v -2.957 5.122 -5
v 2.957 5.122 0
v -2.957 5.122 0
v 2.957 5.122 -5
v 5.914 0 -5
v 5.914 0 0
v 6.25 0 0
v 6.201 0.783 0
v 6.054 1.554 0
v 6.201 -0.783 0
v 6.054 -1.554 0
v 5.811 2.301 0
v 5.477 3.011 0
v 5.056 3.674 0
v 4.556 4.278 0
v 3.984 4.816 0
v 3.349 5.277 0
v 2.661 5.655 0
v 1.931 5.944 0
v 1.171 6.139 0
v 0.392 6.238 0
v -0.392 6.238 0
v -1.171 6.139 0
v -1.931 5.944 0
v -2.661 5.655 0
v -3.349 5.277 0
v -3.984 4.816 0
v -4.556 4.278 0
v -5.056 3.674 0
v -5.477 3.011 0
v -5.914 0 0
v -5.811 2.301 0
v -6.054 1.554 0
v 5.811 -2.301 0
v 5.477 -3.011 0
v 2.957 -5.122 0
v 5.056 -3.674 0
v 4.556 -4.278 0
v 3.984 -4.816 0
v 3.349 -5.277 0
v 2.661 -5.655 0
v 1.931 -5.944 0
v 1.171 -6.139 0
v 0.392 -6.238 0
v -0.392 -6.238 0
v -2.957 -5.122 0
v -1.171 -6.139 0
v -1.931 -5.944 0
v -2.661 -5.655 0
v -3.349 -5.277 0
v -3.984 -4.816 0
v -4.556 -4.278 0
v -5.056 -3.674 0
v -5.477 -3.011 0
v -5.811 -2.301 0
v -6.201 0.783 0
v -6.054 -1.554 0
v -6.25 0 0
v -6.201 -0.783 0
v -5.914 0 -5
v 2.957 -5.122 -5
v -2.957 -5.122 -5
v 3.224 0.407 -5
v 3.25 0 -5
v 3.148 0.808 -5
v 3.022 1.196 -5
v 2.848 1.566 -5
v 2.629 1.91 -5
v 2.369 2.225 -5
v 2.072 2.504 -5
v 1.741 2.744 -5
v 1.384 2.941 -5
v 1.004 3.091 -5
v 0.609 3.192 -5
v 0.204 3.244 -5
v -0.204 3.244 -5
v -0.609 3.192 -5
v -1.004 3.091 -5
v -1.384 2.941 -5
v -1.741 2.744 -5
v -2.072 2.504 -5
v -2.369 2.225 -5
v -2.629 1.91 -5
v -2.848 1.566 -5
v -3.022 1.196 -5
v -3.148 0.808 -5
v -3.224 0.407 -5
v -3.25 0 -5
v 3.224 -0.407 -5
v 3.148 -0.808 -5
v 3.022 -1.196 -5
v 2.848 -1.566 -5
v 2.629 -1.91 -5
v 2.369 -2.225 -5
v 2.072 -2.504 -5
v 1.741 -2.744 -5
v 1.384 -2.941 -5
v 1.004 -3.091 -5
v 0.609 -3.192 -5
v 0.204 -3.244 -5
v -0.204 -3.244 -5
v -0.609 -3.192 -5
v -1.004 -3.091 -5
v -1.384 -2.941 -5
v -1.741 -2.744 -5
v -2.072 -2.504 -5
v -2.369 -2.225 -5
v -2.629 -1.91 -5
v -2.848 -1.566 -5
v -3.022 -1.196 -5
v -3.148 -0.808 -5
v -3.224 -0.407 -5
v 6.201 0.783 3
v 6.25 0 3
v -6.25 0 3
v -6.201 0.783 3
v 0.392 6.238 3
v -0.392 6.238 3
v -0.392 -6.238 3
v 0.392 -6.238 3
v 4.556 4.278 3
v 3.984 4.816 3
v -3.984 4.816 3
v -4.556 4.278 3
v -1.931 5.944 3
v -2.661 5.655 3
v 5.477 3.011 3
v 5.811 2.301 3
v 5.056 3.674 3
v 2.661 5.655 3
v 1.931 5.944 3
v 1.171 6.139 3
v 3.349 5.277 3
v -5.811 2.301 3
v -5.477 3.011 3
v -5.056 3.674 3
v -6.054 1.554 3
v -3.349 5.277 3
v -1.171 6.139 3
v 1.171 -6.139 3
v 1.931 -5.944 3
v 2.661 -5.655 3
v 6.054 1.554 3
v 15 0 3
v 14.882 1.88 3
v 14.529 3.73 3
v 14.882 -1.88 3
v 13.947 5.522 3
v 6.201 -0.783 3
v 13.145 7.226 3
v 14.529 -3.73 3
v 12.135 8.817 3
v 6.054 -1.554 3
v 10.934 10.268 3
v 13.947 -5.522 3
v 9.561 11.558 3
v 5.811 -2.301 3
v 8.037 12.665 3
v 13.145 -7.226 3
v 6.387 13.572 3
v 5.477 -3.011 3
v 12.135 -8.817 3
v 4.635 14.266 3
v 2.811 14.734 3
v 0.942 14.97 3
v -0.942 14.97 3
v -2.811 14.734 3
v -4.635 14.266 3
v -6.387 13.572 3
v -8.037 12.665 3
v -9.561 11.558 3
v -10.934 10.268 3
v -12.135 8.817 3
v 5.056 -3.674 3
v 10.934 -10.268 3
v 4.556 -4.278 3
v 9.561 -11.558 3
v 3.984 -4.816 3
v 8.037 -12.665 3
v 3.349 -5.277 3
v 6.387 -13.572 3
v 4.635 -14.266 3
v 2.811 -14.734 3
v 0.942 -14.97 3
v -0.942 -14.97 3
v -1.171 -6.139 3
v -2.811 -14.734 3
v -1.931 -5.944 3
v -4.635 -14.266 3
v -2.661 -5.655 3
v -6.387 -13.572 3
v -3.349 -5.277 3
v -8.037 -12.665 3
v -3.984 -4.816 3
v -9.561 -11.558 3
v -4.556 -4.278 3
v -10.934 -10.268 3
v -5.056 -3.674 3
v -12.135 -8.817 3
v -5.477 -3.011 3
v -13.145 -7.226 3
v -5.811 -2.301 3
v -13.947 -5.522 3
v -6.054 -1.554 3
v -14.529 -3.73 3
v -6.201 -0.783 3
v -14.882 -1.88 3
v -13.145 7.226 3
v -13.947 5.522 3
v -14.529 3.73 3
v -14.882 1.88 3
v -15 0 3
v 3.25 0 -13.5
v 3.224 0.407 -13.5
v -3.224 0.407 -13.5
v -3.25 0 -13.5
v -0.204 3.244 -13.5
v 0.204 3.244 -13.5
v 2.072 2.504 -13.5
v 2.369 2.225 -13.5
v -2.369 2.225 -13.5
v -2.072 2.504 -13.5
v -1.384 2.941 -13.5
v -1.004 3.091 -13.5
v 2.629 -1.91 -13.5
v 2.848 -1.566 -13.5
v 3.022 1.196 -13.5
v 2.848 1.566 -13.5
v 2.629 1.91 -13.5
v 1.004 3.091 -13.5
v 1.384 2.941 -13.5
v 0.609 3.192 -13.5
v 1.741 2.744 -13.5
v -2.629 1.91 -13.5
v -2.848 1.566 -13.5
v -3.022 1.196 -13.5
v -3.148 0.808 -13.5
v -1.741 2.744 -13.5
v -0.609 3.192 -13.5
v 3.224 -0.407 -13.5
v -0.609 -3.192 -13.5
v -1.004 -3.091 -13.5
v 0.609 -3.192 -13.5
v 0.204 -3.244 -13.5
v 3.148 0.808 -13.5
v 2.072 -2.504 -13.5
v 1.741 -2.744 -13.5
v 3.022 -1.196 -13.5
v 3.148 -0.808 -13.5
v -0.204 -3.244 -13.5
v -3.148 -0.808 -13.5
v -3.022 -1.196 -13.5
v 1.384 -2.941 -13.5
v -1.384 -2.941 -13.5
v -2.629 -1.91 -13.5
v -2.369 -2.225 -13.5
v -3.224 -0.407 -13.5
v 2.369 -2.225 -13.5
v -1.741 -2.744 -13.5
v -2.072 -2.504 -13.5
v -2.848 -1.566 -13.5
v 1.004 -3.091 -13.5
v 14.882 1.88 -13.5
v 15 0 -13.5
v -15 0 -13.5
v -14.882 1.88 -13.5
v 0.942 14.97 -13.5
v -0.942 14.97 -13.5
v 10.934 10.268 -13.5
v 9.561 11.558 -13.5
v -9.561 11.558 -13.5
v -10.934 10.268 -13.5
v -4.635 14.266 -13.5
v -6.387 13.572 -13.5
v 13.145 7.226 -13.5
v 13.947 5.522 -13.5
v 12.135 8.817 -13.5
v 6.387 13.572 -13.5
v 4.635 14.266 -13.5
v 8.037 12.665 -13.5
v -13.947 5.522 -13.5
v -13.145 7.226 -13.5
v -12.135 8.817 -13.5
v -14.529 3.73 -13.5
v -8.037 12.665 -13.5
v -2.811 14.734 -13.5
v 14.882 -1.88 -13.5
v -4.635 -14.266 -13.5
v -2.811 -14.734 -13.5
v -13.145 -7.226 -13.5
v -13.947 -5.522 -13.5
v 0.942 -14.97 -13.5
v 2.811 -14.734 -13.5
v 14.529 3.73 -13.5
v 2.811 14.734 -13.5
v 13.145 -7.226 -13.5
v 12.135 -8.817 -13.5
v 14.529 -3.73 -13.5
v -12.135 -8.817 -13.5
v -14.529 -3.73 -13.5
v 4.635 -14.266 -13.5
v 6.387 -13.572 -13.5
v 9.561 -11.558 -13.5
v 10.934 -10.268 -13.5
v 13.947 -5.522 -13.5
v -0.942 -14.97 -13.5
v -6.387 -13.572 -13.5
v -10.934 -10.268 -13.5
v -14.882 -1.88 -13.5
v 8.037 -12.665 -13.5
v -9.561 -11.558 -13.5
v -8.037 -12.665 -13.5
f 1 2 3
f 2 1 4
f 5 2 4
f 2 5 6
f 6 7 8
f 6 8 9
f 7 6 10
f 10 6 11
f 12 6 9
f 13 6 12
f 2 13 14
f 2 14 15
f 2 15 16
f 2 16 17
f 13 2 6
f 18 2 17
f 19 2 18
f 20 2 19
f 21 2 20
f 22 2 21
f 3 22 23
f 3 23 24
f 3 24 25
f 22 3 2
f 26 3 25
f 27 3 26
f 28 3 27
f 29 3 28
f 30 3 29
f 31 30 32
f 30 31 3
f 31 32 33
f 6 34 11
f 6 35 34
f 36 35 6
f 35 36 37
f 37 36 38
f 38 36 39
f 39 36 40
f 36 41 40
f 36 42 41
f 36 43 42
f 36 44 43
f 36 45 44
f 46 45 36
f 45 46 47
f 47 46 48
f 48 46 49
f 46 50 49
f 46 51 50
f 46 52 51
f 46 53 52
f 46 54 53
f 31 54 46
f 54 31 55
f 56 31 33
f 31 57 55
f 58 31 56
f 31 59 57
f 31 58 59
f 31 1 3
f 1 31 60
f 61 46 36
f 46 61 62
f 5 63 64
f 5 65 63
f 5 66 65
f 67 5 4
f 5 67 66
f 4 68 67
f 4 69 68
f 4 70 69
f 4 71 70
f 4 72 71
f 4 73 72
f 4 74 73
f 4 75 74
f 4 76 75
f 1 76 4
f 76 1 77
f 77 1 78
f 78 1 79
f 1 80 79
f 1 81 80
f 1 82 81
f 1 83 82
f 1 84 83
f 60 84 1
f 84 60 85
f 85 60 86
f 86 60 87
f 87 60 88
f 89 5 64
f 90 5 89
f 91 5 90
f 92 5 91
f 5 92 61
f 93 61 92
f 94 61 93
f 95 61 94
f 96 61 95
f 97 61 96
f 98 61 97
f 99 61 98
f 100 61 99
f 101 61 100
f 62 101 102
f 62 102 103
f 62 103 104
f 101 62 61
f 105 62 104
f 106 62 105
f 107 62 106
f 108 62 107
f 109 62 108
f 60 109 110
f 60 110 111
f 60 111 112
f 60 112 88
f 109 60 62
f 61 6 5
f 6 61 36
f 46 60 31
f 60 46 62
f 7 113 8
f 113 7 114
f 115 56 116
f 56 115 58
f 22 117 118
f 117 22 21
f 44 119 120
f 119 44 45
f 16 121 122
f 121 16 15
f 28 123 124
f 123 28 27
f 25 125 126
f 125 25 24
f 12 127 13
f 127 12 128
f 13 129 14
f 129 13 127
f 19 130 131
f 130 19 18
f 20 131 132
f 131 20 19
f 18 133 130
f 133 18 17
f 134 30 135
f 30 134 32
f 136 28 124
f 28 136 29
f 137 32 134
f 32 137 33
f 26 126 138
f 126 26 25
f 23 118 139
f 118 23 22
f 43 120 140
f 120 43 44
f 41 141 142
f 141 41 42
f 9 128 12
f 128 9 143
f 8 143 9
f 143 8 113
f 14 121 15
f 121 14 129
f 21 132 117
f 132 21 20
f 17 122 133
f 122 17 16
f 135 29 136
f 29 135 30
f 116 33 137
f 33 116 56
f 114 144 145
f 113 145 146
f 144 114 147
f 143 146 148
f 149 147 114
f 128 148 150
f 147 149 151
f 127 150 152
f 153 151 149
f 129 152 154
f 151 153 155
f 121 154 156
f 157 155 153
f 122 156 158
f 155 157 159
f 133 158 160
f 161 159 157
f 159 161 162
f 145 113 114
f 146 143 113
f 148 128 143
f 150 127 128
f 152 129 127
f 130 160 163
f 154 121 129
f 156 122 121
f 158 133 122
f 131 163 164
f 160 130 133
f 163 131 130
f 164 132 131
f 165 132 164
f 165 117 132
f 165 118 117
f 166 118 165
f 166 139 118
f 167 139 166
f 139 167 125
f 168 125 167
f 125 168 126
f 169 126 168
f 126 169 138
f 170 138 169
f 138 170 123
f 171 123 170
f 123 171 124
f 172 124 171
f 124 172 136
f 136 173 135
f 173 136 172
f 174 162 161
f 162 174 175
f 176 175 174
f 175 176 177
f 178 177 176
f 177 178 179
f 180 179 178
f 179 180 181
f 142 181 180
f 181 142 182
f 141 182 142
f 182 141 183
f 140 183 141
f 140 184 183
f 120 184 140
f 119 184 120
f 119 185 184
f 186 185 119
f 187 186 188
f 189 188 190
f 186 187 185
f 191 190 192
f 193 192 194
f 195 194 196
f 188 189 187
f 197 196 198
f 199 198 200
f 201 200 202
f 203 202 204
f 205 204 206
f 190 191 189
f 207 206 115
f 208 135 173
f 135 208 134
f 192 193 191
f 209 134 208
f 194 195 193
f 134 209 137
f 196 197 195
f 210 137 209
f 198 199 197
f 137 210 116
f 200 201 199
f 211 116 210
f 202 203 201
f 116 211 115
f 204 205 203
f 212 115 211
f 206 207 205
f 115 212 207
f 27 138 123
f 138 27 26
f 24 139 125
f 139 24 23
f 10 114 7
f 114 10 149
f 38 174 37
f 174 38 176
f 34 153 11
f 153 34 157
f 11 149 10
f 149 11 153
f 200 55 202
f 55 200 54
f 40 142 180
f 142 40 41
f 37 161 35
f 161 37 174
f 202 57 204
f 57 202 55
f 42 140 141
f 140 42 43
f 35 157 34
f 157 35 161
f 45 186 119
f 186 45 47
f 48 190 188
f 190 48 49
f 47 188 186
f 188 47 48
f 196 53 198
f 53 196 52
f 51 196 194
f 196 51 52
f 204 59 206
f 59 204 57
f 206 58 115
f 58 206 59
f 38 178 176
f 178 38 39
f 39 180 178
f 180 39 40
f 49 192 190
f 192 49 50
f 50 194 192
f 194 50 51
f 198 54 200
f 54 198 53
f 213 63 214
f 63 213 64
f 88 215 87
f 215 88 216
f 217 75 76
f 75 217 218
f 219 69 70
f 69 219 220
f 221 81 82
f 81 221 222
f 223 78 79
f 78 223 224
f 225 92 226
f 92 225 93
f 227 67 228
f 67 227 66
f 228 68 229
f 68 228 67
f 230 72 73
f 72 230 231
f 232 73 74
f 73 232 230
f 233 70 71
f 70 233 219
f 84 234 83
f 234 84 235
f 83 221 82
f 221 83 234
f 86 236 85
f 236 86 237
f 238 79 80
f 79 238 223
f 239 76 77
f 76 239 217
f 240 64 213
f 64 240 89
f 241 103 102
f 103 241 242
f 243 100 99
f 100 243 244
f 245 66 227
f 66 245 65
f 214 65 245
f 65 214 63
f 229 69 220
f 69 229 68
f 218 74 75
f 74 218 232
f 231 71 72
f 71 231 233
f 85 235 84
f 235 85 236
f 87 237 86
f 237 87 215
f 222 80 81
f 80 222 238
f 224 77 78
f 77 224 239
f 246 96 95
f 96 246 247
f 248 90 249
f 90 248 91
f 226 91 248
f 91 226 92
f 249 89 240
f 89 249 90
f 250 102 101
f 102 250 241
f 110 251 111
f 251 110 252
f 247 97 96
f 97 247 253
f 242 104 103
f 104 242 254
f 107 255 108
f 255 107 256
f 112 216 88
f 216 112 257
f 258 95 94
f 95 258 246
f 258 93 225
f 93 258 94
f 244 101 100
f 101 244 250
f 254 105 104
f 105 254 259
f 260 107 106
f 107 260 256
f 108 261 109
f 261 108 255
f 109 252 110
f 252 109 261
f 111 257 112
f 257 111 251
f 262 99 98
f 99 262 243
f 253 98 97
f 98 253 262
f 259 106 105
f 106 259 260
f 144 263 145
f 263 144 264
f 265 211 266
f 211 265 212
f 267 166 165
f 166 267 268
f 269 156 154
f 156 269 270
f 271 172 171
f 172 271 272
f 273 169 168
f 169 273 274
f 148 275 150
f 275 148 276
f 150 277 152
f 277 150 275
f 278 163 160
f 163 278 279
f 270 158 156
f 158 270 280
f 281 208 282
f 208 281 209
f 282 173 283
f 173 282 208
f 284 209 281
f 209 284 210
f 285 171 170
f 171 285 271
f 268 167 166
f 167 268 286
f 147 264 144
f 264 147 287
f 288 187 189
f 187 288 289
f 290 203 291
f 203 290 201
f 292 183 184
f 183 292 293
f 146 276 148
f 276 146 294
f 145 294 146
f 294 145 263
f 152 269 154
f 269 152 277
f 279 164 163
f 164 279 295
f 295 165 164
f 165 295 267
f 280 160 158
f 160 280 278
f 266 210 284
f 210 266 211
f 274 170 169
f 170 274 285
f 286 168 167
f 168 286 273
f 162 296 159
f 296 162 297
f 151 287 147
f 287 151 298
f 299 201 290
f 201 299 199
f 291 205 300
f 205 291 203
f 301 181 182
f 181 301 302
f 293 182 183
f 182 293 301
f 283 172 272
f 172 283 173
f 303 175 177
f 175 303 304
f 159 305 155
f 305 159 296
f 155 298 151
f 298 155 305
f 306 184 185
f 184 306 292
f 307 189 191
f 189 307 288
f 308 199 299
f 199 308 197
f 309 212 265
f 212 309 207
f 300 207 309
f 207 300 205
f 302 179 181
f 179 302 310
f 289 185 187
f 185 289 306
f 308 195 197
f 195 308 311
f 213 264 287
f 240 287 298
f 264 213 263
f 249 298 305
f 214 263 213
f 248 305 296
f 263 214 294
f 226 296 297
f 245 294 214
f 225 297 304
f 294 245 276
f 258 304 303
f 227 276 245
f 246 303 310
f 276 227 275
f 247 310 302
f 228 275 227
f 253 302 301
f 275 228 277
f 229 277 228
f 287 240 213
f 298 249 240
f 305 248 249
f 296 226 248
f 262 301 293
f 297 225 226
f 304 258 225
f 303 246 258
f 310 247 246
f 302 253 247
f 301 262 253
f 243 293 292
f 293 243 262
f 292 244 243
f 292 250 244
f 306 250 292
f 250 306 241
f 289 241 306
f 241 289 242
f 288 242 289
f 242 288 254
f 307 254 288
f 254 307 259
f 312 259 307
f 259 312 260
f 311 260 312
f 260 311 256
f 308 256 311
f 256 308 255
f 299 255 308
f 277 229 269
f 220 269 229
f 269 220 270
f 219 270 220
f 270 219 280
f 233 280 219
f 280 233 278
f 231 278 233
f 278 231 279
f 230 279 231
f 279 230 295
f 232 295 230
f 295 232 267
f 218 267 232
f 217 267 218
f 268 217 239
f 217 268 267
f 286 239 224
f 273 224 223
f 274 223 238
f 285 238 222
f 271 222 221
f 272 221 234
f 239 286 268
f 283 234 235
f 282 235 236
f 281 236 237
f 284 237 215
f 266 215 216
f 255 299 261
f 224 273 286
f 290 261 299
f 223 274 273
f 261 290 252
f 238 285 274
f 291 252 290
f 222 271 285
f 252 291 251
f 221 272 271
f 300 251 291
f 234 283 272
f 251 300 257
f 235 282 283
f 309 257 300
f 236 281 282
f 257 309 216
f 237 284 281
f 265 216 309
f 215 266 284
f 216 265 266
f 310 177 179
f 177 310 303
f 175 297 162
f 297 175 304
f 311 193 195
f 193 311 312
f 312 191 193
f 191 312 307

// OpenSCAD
$fn = 50;

difference() {
	union() {
		translate(v = [0, 0, -13.5]) {
			cylinder(h = 16.5, r = 15.0);
		}
	}
	union() {
		translate(v = [0, 0, 0]) {
			rotate(a = [0, 0, 0]) {
				difference() {
					union() {
						translate(v = [0, 0, -5]) {
							linear_extrude(height = 5) {
								polygon(points = [[5.914249999999999, 0.0], [2.957125, 5.1218907443321156], [-2.9571249999999982, 5.1218907443321156], [-5.914249999999999, 7.242867331857232e-16], [-2.9571250000000022, -5.121890744332115], [2.9571249999999956, -5.121890744332118]]);
							}
						}
					}
					union();
				}
			}
		}
		#cylinder(h = 3, r = 6.25);
		#translate(v = [0, 0, -100.0]) {
			cylinder(h = 200, r = 3.25);
		}
	}
}
